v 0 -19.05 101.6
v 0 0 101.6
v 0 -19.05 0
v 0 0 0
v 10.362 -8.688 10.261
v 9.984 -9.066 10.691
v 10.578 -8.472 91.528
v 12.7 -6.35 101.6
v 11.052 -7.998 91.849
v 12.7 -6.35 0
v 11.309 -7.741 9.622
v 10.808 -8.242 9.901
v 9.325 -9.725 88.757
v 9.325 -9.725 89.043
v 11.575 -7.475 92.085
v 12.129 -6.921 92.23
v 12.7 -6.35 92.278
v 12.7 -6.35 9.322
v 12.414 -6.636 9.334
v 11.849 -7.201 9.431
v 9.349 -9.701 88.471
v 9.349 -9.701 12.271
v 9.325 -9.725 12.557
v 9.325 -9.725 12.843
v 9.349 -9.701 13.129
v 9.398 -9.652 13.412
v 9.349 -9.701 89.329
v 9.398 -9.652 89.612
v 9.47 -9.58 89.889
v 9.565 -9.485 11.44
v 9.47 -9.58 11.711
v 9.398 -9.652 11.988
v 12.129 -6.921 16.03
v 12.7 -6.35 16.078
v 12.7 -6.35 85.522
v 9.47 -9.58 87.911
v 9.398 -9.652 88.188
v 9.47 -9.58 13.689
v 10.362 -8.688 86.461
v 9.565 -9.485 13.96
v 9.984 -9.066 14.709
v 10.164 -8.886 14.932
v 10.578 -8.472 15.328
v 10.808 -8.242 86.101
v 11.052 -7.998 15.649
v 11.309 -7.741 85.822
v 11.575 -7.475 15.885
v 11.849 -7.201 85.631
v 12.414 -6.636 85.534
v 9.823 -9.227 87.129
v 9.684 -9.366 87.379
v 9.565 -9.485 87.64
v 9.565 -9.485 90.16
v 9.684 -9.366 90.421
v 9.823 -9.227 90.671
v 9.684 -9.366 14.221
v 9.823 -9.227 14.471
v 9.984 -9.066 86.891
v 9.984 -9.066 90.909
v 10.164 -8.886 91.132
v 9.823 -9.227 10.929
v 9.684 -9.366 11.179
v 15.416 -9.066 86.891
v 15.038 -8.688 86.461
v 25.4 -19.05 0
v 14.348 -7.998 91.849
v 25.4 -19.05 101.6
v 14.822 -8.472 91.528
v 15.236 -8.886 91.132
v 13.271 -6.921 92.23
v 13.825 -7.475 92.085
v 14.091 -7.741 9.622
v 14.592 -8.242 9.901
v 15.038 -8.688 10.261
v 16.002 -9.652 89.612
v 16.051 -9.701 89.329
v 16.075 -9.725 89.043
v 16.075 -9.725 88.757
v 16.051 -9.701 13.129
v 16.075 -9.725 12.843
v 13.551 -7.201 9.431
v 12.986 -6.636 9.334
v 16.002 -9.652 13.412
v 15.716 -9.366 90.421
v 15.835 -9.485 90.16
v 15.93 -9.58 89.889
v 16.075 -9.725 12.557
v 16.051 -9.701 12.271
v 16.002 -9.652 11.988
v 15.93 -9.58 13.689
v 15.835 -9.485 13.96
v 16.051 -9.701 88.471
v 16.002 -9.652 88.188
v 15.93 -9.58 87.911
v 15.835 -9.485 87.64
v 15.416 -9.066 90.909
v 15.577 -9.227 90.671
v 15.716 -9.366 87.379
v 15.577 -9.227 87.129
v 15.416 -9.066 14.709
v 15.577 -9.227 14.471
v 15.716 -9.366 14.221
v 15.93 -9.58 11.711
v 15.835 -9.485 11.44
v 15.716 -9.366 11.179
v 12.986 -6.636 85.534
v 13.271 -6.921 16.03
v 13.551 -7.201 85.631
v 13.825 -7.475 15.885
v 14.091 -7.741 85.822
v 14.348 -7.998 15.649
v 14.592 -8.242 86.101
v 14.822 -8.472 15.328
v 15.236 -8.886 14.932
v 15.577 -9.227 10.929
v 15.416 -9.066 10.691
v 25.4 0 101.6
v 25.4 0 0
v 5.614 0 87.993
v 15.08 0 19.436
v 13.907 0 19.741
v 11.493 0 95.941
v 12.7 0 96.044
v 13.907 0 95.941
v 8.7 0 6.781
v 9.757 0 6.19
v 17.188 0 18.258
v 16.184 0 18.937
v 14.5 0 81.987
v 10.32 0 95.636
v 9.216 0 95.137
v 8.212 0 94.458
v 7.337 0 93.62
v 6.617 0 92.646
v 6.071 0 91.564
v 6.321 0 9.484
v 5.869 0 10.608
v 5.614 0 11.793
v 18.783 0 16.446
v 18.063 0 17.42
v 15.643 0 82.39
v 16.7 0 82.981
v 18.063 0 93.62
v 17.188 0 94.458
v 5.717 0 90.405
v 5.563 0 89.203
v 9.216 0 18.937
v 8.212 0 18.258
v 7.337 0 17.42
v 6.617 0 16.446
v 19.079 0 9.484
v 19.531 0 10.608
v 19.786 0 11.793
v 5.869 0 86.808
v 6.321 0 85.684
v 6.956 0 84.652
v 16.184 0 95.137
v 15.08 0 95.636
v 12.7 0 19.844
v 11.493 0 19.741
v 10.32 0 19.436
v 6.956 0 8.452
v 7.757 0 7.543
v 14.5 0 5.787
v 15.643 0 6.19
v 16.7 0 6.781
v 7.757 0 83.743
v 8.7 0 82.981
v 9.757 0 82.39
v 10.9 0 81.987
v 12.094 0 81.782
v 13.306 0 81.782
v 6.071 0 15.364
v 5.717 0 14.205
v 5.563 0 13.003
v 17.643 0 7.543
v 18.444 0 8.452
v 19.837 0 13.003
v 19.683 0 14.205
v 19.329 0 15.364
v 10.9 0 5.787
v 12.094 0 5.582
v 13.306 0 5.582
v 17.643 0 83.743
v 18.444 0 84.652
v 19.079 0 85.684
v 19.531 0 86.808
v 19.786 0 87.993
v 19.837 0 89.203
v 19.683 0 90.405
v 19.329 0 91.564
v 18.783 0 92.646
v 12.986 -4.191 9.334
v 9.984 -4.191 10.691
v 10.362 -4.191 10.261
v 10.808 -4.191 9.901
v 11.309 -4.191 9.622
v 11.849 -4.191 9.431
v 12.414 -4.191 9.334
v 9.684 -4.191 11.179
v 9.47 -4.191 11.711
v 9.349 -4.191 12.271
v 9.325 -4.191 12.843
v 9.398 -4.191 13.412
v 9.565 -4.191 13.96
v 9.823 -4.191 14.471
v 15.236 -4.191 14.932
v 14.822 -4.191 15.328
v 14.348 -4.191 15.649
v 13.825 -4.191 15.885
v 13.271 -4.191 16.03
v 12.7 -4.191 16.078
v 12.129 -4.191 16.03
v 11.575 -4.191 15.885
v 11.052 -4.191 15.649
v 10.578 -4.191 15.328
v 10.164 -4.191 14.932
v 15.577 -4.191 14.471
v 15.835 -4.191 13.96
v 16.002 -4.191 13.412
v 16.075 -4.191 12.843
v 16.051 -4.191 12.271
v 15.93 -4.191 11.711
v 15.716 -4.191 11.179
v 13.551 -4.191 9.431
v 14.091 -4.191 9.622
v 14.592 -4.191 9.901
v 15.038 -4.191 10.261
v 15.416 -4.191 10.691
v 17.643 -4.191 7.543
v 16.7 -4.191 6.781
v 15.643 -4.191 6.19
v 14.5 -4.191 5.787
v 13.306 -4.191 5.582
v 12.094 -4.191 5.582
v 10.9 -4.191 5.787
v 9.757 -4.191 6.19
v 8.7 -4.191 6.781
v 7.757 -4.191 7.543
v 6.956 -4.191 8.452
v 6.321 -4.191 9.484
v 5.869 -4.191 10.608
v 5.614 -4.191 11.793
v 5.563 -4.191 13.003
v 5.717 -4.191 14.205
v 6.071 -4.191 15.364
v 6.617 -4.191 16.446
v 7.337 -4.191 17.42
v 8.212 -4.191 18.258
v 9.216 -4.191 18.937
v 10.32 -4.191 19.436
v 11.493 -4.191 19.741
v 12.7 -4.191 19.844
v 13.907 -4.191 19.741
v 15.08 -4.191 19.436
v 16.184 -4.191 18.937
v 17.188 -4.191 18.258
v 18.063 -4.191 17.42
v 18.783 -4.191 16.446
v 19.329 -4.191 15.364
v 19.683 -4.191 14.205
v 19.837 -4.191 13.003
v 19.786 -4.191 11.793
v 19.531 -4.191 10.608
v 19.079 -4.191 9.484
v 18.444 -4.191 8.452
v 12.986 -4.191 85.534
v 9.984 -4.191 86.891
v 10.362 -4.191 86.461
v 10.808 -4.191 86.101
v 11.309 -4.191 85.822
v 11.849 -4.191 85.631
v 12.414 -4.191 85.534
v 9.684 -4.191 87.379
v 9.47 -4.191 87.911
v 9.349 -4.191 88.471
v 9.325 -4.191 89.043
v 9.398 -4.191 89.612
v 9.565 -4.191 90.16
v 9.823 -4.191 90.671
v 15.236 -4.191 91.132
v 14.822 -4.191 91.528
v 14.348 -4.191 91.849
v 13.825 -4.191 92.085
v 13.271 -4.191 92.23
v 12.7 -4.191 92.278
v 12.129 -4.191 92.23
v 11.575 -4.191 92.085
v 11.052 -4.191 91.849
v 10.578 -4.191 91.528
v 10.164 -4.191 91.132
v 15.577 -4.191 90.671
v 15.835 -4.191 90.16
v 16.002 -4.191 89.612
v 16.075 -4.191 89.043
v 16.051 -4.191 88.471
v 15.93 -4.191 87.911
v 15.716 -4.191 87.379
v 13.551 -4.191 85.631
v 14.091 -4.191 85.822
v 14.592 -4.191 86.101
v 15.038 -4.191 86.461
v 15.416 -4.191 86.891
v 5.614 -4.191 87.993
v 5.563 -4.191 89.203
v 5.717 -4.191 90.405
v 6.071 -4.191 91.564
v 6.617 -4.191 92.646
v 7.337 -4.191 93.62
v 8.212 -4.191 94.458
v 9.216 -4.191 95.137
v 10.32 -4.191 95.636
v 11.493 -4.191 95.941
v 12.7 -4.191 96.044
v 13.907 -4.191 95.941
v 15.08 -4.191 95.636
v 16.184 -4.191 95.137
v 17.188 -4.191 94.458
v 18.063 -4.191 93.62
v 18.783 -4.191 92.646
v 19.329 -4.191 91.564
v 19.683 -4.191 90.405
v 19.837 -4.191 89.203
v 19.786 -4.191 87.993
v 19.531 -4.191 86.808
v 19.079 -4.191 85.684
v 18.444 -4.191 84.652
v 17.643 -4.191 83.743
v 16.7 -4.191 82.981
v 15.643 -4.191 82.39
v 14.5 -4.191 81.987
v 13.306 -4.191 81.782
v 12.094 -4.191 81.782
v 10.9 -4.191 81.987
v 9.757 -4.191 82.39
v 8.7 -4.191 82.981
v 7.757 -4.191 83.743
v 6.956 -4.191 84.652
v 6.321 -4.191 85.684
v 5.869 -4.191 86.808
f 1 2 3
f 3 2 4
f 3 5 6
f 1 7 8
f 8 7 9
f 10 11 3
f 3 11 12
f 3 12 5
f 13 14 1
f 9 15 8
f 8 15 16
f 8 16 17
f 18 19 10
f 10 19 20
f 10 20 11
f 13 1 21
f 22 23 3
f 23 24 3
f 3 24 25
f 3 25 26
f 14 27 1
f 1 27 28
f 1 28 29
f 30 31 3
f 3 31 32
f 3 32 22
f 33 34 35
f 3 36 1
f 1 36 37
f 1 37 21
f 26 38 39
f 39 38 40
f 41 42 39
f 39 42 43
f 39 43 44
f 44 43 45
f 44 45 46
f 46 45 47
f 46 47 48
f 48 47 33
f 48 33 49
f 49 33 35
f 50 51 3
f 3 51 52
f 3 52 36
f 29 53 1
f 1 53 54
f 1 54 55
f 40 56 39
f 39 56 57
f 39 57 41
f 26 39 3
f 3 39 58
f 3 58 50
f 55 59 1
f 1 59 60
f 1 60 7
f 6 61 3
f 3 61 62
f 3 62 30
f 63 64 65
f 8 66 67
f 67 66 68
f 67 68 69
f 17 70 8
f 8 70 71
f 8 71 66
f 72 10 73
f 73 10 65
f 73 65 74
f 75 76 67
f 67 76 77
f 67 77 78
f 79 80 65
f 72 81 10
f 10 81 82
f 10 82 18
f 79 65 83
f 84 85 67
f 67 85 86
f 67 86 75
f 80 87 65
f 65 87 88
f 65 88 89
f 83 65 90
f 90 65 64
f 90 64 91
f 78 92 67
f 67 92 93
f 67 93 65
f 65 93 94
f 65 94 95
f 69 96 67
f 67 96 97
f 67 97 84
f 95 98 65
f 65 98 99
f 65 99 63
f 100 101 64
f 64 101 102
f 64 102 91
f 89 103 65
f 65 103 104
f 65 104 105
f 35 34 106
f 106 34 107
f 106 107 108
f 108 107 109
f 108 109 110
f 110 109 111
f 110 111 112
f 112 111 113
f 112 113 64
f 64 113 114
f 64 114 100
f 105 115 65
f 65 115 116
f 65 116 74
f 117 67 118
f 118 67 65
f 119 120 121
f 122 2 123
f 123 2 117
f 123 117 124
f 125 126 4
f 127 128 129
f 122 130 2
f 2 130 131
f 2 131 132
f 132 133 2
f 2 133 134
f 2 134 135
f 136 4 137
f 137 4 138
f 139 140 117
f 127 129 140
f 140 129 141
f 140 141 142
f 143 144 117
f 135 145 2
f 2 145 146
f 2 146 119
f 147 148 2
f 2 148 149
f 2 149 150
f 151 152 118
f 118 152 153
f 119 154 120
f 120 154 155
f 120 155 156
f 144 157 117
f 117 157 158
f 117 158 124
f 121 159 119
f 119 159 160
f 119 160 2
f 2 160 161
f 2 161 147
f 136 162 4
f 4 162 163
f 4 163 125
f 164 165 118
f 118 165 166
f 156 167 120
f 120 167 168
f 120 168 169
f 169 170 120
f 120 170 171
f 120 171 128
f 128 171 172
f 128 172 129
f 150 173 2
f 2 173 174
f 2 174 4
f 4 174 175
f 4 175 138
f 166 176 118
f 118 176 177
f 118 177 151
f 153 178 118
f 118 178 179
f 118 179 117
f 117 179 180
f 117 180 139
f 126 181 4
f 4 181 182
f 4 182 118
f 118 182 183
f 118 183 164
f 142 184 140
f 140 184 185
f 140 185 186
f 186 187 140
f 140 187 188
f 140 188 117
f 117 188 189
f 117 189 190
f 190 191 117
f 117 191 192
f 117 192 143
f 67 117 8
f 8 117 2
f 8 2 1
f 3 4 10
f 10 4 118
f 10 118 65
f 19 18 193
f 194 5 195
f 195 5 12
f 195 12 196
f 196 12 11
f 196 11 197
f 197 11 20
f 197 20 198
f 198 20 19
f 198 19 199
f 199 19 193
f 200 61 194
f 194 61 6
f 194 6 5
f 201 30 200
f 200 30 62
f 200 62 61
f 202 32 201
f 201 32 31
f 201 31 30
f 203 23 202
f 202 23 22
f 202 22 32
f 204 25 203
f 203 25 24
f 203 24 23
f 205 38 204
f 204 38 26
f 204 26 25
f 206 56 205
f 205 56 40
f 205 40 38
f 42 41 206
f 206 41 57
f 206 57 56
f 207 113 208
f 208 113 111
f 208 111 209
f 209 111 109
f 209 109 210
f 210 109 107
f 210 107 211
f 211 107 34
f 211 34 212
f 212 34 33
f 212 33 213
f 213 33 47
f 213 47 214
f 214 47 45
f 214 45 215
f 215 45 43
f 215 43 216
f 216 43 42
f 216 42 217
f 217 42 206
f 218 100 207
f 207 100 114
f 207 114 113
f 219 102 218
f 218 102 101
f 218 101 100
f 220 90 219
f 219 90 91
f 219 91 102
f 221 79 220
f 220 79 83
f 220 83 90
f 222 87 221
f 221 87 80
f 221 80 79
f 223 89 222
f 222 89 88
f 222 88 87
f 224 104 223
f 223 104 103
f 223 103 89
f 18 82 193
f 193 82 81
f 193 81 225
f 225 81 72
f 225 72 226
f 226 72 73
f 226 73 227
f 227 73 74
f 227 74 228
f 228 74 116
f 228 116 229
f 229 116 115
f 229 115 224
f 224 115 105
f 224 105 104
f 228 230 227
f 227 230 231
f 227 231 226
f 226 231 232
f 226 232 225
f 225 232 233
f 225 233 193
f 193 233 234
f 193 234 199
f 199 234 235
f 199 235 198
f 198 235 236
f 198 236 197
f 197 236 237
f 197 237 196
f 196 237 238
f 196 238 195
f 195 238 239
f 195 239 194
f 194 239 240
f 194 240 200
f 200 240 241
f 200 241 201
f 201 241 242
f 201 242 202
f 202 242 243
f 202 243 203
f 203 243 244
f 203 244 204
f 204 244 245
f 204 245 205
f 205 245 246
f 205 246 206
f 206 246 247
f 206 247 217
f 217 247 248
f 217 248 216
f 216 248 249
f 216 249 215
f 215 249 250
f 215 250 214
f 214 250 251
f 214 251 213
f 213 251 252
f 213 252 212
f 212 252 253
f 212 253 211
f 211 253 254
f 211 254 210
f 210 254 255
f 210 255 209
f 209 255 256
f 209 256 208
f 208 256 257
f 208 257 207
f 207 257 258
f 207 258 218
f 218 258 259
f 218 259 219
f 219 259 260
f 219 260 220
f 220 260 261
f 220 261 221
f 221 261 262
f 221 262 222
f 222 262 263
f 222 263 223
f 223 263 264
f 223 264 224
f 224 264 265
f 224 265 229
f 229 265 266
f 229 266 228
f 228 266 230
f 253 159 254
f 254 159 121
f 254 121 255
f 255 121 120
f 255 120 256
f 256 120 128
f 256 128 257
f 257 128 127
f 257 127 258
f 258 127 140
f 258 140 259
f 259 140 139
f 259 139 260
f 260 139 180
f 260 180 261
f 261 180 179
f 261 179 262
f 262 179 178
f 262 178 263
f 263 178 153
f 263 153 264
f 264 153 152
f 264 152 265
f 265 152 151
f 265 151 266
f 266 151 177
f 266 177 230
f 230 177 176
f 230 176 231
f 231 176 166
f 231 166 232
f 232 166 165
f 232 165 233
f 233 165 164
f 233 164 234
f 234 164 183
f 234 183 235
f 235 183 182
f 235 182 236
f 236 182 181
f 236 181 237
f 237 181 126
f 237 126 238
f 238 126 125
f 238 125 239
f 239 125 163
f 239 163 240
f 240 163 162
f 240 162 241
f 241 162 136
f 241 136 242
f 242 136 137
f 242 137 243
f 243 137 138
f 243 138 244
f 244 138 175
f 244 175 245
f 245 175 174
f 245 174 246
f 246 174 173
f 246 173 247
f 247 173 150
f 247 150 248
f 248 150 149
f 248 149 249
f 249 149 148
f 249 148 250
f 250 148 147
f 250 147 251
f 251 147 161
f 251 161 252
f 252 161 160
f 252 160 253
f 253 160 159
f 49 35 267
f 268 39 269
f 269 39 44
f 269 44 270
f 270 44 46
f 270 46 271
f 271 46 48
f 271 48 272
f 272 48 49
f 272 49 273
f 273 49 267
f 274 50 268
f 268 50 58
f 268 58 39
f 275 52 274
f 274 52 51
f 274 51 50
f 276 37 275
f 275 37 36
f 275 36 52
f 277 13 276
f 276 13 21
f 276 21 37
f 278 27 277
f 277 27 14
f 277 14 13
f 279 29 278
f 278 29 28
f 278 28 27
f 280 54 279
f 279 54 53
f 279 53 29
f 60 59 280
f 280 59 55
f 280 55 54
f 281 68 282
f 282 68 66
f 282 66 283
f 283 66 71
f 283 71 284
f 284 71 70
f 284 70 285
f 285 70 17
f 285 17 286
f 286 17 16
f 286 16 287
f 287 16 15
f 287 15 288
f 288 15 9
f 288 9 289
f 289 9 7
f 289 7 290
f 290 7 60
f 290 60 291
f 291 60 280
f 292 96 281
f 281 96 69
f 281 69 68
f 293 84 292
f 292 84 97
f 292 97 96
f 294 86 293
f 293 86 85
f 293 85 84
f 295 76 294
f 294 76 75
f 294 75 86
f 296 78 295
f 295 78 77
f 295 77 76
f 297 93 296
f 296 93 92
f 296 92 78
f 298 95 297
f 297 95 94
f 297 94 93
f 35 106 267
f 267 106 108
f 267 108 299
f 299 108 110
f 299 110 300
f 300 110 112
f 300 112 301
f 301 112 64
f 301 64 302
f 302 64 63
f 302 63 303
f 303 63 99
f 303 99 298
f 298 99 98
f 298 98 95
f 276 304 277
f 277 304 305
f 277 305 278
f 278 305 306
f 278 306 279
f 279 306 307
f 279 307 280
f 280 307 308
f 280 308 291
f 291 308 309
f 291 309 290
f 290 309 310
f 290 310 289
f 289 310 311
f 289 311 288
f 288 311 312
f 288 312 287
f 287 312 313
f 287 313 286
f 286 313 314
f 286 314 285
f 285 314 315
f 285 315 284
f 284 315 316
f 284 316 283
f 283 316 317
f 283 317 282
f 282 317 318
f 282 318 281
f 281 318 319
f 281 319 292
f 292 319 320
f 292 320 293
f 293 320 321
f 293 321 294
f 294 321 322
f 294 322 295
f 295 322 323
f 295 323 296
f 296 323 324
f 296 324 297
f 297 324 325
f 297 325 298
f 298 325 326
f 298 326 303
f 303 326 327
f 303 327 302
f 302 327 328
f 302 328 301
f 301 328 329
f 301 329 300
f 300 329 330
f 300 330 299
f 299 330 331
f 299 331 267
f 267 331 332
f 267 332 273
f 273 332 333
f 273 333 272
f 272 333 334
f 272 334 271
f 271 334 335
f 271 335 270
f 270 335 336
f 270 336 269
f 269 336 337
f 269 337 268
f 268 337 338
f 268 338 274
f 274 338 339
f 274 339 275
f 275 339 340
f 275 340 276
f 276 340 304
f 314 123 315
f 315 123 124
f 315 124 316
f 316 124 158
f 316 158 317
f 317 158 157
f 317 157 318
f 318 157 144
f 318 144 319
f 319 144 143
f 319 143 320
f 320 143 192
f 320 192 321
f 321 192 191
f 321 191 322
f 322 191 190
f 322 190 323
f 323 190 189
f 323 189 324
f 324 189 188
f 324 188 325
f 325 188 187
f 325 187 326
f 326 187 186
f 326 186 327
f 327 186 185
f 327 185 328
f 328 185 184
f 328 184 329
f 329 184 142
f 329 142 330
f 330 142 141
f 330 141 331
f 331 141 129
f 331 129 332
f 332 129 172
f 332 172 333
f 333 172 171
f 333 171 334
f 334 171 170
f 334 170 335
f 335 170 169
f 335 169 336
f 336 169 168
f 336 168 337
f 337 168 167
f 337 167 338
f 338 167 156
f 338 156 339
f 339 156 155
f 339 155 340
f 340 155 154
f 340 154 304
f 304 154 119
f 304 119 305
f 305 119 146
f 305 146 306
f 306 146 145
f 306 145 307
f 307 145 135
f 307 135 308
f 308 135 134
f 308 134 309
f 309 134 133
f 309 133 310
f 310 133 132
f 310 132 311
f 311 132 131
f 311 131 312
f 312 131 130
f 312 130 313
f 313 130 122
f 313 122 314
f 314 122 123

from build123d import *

# Parameters (mm, degrees)
BOSS_EXTRUDE1_DEPTH                                  = 101.6
CBORE_FOR_1_4_BINDING_HEAD_MACHINE_SCREW_D           = 6.7564
CBORE_FOR_1_4_BINDING_HEAD_MACHINE_SCREW_CBORE_D     = 14.2875
CBORE_FOR_1_4_BINDING_HEAD_MACHINE_SCREW_CBORE_DEPTH = 4.191


with BuildPart() as part:
    # Sketch1 → Boss-Extrude1 (new body)
    with BuildSketch(Plane.XY):
        Polygon((0, -19.05), (12.7, -6.35), (25.4, -19.05), (25.4, 0), (0, 0), align=None)
    extrude(amount=BOSS_EXTRUDE1_DEPTH)

    # CBORE for 1/4 Binding Head Machine Screw1 (through all)
    with Locations(Plane(origin=(0, 0, 0), x_dir=(1, 0, 0), z_dir=(0, 1, 0))):
        with Locations((12.7, -88.9), (12.7, -12.7)):
            CounterBoreHole(CBORE_FOR_1_4_BINDING_HEAD_MACHINE_SCREW_D / 2, CBORE_FOR_1_4_BINDING_HEAD_MACHINE_SCREW_CBORE_D / 2, CBORE_FOR_1_4_BINDING_HEAD_MACHINE_SCREW_CBORE_DEPTH)


solid = part.part
